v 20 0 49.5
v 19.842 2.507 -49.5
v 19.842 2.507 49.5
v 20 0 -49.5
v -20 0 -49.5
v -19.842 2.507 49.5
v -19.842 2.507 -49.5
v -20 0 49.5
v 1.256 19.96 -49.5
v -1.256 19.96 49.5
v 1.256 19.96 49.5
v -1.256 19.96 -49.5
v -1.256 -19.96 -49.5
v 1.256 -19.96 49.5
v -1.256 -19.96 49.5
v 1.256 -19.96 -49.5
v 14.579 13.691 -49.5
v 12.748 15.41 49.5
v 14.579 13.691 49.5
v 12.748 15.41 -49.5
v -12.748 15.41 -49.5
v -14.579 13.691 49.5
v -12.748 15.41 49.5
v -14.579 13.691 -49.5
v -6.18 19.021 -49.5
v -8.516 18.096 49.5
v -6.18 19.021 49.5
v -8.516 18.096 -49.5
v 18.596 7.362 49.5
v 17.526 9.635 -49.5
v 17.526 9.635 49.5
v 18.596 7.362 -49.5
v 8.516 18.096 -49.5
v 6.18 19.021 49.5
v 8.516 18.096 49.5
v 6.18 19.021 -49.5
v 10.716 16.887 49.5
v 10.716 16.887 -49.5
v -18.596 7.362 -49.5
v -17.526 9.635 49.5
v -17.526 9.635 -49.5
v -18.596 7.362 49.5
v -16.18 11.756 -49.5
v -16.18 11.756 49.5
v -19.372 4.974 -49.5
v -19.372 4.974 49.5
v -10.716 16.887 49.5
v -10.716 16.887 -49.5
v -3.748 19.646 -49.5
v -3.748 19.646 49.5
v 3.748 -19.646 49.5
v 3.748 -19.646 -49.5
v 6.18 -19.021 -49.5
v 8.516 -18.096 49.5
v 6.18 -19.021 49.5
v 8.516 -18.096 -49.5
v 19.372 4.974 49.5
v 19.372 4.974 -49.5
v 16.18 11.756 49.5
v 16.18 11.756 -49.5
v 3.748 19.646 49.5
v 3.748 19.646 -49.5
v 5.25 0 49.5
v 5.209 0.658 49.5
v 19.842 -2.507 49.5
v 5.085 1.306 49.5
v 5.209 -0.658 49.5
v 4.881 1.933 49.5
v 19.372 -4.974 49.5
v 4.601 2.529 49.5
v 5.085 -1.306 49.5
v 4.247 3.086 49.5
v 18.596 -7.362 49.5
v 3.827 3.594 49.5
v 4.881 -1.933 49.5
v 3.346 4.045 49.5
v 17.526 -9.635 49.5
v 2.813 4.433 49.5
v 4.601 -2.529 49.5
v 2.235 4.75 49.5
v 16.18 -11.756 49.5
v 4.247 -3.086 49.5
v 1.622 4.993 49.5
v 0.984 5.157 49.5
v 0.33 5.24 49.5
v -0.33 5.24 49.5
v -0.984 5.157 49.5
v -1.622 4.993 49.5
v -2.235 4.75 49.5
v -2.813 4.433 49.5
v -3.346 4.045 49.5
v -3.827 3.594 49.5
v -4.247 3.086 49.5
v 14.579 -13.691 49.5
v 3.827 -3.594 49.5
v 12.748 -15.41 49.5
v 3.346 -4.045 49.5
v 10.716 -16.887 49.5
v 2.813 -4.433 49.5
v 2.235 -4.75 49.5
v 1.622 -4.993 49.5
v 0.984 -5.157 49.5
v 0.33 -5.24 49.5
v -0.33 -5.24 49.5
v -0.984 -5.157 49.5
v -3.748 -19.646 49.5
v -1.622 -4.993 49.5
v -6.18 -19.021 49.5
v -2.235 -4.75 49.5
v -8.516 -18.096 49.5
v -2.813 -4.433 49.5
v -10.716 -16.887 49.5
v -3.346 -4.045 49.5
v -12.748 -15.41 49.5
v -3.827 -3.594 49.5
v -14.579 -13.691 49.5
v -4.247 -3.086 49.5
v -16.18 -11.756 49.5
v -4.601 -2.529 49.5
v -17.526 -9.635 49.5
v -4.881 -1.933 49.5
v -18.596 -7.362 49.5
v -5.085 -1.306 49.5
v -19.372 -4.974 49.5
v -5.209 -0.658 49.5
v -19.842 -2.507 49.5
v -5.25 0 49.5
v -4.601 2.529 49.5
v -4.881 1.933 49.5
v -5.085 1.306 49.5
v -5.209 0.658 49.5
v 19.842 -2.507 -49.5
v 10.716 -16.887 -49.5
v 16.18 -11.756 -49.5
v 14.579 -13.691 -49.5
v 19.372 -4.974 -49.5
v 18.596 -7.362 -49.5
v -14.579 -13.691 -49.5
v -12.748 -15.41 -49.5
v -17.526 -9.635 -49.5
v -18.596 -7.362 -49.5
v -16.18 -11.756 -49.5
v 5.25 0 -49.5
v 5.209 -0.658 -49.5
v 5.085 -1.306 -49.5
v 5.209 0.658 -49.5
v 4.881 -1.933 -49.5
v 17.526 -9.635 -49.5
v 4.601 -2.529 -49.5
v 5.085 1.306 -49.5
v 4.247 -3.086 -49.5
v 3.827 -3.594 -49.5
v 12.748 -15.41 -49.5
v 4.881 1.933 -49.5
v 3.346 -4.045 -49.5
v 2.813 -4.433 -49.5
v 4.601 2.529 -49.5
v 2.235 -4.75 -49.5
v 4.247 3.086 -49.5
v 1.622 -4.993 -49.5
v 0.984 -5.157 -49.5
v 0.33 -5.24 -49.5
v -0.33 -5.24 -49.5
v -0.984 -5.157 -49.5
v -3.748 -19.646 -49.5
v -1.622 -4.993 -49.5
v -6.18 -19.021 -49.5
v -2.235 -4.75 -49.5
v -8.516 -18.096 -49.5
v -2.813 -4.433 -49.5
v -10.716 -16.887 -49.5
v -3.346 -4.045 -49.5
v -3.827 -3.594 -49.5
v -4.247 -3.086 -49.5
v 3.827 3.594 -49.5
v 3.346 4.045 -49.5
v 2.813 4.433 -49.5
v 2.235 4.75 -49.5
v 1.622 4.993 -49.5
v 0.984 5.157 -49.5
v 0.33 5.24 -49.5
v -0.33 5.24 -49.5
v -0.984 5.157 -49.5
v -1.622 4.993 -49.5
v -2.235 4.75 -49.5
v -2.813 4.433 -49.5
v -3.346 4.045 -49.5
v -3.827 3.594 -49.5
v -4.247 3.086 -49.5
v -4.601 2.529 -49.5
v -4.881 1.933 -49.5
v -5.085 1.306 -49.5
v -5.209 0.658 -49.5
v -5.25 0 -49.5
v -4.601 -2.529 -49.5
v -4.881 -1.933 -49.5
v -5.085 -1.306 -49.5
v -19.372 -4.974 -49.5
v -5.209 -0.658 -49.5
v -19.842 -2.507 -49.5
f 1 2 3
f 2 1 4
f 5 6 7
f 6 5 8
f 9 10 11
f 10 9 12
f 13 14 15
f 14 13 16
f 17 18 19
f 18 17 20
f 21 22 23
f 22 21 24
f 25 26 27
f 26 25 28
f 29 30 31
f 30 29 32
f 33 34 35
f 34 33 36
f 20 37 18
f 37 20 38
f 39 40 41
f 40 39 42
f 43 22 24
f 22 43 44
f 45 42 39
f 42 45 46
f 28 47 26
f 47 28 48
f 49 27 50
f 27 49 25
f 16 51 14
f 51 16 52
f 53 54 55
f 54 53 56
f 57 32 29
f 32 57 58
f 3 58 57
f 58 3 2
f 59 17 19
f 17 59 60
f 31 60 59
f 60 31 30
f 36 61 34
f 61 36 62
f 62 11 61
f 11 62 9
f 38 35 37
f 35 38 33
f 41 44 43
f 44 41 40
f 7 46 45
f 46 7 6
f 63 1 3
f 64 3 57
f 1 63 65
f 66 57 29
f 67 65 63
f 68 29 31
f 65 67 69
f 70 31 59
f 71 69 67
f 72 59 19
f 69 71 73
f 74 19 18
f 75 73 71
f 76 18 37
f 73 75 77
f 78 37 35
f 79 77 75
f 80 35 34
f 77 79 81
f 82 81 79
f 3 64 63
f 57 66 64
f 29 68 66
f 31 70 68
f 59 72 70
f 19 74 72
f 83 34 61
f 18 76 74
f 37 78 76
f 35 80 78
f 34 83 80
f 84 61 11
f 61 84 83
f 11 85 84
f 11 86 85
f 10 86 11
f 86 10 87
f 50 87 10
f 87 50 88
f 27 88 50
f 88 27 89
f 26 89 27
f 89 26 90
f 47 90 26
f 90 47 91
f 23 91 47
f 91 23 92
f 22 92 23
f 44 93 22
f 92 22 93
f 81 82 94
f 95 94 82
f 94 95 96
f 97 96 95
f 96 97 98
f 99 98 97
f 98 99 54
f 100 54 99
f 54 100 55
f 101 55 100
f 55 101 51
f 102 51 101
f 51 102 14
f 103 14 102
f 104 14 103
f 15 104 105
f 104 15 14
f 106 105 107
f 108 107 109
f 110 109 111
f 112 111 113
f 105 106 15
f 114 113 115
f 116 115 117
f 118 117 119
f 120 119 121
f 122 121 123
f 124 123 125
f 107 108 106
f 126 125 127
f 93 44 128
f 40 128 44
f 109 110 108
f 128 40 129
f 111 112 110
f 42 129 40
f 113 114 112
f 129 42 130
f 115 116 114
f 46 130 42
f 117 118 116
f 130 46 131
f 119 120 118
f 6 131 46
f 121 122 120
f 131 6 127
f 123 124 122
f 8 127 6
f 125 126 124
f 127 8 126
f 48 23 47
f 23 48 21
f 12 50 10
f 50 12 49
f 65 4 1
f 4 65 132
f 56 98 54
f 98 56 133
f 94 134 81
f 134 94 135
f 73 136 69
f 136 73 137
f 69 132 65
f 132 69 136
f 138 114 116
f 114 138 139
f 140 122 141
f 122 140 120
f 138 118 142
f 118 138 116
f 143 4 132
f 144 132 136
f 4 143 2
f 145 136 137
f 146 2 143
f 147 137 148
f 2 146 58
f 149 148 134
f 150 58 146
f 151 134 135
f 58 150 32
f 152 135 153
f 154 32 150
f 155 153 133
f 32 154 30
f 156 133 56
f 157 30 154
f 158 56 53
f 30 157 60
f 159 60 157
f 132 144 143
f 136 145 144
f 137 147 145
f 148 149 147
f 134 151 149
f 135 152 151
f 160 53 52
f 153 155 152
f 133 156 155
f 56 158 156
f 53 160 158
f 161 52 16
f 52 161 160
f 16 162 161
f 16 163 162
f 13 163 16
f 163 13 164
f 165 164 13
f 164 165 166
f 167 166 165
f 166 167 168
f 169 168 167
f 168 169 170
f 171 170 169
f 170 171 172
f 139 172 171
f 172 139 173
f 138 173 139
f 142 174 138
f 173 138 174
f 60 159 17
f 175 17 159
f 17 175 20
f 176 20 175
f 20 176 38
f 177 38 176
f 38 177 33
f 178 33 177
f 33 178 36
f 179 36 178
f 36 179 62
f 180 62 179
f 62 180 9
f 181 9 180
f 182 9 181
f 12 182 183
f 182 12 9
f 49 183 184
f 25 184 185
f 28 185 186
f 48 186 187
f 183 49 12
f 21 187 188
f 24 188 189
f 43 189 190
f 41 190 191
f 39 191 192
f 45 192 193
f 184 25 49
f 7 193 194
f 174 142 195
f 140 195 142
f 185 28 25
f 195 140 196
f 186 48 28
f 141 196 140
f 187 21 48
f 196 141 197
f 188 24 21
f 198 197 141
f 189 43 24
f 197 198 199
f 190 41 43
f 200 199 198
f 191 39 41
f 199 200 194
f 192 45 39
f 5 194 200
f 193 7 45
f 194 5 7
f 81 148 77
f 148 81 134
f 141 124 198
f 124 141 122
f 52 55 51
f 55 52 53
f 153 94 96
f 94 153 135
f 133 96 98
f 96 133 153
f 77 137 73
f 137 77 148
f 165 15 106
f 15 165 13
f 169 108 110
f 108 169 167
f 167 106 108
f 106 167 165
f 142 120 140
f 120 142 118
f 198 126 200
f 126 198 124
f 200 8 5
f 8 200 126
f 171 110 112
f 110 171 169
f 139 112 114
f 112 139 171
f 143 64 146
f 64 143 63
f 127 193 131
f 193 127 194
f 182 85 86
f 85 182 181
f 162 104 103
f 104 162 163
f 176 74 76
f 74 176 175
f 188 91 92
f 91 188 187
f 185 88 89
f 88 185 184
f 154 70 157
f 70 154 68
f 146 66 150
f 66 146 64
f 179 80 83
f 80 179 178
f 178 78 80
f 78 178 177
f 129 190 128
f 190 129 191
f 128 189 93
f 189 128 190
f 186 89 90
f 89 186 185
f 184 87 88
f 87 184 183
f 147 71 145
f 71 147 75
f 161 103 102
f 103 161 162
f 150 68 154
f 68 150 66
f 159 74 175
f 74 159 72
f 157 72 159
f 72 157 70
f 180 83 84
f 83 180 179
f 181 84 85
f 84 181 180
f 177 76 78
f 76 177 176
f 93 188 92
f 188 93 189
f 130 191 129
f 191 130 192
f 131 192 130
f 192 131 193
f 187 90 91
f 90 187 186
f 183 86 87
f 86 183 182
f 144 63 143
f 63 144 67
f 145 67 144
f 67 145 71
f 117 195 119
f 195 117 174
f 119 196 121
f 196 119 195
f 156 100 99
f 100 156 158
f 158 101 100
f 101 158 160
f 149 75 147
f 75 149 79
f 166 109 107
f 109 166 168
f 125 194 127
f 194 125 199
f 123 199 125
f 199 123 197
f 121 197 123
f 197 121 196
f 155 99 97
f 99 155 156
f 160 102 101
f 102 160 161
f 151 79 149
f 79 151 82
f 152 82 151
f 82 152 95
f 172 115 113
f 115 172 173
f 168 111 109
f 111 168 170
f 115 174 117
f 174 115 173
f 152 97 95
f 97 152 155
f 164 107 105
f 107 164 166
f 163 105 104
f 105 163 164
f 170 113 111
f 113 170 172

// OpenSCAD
$fn = 50;


difference() {
	union() {
		translate(v = [0, 0, -49.5000000000]) {
			cylinder(h = 99, r = 20.0000000000);
		}
	}
	union() {
		translate(v = [0, 0, -100.0000000000]) {
			cylinder(h = 200, r = 5.2500000000);
		}
	}
}
